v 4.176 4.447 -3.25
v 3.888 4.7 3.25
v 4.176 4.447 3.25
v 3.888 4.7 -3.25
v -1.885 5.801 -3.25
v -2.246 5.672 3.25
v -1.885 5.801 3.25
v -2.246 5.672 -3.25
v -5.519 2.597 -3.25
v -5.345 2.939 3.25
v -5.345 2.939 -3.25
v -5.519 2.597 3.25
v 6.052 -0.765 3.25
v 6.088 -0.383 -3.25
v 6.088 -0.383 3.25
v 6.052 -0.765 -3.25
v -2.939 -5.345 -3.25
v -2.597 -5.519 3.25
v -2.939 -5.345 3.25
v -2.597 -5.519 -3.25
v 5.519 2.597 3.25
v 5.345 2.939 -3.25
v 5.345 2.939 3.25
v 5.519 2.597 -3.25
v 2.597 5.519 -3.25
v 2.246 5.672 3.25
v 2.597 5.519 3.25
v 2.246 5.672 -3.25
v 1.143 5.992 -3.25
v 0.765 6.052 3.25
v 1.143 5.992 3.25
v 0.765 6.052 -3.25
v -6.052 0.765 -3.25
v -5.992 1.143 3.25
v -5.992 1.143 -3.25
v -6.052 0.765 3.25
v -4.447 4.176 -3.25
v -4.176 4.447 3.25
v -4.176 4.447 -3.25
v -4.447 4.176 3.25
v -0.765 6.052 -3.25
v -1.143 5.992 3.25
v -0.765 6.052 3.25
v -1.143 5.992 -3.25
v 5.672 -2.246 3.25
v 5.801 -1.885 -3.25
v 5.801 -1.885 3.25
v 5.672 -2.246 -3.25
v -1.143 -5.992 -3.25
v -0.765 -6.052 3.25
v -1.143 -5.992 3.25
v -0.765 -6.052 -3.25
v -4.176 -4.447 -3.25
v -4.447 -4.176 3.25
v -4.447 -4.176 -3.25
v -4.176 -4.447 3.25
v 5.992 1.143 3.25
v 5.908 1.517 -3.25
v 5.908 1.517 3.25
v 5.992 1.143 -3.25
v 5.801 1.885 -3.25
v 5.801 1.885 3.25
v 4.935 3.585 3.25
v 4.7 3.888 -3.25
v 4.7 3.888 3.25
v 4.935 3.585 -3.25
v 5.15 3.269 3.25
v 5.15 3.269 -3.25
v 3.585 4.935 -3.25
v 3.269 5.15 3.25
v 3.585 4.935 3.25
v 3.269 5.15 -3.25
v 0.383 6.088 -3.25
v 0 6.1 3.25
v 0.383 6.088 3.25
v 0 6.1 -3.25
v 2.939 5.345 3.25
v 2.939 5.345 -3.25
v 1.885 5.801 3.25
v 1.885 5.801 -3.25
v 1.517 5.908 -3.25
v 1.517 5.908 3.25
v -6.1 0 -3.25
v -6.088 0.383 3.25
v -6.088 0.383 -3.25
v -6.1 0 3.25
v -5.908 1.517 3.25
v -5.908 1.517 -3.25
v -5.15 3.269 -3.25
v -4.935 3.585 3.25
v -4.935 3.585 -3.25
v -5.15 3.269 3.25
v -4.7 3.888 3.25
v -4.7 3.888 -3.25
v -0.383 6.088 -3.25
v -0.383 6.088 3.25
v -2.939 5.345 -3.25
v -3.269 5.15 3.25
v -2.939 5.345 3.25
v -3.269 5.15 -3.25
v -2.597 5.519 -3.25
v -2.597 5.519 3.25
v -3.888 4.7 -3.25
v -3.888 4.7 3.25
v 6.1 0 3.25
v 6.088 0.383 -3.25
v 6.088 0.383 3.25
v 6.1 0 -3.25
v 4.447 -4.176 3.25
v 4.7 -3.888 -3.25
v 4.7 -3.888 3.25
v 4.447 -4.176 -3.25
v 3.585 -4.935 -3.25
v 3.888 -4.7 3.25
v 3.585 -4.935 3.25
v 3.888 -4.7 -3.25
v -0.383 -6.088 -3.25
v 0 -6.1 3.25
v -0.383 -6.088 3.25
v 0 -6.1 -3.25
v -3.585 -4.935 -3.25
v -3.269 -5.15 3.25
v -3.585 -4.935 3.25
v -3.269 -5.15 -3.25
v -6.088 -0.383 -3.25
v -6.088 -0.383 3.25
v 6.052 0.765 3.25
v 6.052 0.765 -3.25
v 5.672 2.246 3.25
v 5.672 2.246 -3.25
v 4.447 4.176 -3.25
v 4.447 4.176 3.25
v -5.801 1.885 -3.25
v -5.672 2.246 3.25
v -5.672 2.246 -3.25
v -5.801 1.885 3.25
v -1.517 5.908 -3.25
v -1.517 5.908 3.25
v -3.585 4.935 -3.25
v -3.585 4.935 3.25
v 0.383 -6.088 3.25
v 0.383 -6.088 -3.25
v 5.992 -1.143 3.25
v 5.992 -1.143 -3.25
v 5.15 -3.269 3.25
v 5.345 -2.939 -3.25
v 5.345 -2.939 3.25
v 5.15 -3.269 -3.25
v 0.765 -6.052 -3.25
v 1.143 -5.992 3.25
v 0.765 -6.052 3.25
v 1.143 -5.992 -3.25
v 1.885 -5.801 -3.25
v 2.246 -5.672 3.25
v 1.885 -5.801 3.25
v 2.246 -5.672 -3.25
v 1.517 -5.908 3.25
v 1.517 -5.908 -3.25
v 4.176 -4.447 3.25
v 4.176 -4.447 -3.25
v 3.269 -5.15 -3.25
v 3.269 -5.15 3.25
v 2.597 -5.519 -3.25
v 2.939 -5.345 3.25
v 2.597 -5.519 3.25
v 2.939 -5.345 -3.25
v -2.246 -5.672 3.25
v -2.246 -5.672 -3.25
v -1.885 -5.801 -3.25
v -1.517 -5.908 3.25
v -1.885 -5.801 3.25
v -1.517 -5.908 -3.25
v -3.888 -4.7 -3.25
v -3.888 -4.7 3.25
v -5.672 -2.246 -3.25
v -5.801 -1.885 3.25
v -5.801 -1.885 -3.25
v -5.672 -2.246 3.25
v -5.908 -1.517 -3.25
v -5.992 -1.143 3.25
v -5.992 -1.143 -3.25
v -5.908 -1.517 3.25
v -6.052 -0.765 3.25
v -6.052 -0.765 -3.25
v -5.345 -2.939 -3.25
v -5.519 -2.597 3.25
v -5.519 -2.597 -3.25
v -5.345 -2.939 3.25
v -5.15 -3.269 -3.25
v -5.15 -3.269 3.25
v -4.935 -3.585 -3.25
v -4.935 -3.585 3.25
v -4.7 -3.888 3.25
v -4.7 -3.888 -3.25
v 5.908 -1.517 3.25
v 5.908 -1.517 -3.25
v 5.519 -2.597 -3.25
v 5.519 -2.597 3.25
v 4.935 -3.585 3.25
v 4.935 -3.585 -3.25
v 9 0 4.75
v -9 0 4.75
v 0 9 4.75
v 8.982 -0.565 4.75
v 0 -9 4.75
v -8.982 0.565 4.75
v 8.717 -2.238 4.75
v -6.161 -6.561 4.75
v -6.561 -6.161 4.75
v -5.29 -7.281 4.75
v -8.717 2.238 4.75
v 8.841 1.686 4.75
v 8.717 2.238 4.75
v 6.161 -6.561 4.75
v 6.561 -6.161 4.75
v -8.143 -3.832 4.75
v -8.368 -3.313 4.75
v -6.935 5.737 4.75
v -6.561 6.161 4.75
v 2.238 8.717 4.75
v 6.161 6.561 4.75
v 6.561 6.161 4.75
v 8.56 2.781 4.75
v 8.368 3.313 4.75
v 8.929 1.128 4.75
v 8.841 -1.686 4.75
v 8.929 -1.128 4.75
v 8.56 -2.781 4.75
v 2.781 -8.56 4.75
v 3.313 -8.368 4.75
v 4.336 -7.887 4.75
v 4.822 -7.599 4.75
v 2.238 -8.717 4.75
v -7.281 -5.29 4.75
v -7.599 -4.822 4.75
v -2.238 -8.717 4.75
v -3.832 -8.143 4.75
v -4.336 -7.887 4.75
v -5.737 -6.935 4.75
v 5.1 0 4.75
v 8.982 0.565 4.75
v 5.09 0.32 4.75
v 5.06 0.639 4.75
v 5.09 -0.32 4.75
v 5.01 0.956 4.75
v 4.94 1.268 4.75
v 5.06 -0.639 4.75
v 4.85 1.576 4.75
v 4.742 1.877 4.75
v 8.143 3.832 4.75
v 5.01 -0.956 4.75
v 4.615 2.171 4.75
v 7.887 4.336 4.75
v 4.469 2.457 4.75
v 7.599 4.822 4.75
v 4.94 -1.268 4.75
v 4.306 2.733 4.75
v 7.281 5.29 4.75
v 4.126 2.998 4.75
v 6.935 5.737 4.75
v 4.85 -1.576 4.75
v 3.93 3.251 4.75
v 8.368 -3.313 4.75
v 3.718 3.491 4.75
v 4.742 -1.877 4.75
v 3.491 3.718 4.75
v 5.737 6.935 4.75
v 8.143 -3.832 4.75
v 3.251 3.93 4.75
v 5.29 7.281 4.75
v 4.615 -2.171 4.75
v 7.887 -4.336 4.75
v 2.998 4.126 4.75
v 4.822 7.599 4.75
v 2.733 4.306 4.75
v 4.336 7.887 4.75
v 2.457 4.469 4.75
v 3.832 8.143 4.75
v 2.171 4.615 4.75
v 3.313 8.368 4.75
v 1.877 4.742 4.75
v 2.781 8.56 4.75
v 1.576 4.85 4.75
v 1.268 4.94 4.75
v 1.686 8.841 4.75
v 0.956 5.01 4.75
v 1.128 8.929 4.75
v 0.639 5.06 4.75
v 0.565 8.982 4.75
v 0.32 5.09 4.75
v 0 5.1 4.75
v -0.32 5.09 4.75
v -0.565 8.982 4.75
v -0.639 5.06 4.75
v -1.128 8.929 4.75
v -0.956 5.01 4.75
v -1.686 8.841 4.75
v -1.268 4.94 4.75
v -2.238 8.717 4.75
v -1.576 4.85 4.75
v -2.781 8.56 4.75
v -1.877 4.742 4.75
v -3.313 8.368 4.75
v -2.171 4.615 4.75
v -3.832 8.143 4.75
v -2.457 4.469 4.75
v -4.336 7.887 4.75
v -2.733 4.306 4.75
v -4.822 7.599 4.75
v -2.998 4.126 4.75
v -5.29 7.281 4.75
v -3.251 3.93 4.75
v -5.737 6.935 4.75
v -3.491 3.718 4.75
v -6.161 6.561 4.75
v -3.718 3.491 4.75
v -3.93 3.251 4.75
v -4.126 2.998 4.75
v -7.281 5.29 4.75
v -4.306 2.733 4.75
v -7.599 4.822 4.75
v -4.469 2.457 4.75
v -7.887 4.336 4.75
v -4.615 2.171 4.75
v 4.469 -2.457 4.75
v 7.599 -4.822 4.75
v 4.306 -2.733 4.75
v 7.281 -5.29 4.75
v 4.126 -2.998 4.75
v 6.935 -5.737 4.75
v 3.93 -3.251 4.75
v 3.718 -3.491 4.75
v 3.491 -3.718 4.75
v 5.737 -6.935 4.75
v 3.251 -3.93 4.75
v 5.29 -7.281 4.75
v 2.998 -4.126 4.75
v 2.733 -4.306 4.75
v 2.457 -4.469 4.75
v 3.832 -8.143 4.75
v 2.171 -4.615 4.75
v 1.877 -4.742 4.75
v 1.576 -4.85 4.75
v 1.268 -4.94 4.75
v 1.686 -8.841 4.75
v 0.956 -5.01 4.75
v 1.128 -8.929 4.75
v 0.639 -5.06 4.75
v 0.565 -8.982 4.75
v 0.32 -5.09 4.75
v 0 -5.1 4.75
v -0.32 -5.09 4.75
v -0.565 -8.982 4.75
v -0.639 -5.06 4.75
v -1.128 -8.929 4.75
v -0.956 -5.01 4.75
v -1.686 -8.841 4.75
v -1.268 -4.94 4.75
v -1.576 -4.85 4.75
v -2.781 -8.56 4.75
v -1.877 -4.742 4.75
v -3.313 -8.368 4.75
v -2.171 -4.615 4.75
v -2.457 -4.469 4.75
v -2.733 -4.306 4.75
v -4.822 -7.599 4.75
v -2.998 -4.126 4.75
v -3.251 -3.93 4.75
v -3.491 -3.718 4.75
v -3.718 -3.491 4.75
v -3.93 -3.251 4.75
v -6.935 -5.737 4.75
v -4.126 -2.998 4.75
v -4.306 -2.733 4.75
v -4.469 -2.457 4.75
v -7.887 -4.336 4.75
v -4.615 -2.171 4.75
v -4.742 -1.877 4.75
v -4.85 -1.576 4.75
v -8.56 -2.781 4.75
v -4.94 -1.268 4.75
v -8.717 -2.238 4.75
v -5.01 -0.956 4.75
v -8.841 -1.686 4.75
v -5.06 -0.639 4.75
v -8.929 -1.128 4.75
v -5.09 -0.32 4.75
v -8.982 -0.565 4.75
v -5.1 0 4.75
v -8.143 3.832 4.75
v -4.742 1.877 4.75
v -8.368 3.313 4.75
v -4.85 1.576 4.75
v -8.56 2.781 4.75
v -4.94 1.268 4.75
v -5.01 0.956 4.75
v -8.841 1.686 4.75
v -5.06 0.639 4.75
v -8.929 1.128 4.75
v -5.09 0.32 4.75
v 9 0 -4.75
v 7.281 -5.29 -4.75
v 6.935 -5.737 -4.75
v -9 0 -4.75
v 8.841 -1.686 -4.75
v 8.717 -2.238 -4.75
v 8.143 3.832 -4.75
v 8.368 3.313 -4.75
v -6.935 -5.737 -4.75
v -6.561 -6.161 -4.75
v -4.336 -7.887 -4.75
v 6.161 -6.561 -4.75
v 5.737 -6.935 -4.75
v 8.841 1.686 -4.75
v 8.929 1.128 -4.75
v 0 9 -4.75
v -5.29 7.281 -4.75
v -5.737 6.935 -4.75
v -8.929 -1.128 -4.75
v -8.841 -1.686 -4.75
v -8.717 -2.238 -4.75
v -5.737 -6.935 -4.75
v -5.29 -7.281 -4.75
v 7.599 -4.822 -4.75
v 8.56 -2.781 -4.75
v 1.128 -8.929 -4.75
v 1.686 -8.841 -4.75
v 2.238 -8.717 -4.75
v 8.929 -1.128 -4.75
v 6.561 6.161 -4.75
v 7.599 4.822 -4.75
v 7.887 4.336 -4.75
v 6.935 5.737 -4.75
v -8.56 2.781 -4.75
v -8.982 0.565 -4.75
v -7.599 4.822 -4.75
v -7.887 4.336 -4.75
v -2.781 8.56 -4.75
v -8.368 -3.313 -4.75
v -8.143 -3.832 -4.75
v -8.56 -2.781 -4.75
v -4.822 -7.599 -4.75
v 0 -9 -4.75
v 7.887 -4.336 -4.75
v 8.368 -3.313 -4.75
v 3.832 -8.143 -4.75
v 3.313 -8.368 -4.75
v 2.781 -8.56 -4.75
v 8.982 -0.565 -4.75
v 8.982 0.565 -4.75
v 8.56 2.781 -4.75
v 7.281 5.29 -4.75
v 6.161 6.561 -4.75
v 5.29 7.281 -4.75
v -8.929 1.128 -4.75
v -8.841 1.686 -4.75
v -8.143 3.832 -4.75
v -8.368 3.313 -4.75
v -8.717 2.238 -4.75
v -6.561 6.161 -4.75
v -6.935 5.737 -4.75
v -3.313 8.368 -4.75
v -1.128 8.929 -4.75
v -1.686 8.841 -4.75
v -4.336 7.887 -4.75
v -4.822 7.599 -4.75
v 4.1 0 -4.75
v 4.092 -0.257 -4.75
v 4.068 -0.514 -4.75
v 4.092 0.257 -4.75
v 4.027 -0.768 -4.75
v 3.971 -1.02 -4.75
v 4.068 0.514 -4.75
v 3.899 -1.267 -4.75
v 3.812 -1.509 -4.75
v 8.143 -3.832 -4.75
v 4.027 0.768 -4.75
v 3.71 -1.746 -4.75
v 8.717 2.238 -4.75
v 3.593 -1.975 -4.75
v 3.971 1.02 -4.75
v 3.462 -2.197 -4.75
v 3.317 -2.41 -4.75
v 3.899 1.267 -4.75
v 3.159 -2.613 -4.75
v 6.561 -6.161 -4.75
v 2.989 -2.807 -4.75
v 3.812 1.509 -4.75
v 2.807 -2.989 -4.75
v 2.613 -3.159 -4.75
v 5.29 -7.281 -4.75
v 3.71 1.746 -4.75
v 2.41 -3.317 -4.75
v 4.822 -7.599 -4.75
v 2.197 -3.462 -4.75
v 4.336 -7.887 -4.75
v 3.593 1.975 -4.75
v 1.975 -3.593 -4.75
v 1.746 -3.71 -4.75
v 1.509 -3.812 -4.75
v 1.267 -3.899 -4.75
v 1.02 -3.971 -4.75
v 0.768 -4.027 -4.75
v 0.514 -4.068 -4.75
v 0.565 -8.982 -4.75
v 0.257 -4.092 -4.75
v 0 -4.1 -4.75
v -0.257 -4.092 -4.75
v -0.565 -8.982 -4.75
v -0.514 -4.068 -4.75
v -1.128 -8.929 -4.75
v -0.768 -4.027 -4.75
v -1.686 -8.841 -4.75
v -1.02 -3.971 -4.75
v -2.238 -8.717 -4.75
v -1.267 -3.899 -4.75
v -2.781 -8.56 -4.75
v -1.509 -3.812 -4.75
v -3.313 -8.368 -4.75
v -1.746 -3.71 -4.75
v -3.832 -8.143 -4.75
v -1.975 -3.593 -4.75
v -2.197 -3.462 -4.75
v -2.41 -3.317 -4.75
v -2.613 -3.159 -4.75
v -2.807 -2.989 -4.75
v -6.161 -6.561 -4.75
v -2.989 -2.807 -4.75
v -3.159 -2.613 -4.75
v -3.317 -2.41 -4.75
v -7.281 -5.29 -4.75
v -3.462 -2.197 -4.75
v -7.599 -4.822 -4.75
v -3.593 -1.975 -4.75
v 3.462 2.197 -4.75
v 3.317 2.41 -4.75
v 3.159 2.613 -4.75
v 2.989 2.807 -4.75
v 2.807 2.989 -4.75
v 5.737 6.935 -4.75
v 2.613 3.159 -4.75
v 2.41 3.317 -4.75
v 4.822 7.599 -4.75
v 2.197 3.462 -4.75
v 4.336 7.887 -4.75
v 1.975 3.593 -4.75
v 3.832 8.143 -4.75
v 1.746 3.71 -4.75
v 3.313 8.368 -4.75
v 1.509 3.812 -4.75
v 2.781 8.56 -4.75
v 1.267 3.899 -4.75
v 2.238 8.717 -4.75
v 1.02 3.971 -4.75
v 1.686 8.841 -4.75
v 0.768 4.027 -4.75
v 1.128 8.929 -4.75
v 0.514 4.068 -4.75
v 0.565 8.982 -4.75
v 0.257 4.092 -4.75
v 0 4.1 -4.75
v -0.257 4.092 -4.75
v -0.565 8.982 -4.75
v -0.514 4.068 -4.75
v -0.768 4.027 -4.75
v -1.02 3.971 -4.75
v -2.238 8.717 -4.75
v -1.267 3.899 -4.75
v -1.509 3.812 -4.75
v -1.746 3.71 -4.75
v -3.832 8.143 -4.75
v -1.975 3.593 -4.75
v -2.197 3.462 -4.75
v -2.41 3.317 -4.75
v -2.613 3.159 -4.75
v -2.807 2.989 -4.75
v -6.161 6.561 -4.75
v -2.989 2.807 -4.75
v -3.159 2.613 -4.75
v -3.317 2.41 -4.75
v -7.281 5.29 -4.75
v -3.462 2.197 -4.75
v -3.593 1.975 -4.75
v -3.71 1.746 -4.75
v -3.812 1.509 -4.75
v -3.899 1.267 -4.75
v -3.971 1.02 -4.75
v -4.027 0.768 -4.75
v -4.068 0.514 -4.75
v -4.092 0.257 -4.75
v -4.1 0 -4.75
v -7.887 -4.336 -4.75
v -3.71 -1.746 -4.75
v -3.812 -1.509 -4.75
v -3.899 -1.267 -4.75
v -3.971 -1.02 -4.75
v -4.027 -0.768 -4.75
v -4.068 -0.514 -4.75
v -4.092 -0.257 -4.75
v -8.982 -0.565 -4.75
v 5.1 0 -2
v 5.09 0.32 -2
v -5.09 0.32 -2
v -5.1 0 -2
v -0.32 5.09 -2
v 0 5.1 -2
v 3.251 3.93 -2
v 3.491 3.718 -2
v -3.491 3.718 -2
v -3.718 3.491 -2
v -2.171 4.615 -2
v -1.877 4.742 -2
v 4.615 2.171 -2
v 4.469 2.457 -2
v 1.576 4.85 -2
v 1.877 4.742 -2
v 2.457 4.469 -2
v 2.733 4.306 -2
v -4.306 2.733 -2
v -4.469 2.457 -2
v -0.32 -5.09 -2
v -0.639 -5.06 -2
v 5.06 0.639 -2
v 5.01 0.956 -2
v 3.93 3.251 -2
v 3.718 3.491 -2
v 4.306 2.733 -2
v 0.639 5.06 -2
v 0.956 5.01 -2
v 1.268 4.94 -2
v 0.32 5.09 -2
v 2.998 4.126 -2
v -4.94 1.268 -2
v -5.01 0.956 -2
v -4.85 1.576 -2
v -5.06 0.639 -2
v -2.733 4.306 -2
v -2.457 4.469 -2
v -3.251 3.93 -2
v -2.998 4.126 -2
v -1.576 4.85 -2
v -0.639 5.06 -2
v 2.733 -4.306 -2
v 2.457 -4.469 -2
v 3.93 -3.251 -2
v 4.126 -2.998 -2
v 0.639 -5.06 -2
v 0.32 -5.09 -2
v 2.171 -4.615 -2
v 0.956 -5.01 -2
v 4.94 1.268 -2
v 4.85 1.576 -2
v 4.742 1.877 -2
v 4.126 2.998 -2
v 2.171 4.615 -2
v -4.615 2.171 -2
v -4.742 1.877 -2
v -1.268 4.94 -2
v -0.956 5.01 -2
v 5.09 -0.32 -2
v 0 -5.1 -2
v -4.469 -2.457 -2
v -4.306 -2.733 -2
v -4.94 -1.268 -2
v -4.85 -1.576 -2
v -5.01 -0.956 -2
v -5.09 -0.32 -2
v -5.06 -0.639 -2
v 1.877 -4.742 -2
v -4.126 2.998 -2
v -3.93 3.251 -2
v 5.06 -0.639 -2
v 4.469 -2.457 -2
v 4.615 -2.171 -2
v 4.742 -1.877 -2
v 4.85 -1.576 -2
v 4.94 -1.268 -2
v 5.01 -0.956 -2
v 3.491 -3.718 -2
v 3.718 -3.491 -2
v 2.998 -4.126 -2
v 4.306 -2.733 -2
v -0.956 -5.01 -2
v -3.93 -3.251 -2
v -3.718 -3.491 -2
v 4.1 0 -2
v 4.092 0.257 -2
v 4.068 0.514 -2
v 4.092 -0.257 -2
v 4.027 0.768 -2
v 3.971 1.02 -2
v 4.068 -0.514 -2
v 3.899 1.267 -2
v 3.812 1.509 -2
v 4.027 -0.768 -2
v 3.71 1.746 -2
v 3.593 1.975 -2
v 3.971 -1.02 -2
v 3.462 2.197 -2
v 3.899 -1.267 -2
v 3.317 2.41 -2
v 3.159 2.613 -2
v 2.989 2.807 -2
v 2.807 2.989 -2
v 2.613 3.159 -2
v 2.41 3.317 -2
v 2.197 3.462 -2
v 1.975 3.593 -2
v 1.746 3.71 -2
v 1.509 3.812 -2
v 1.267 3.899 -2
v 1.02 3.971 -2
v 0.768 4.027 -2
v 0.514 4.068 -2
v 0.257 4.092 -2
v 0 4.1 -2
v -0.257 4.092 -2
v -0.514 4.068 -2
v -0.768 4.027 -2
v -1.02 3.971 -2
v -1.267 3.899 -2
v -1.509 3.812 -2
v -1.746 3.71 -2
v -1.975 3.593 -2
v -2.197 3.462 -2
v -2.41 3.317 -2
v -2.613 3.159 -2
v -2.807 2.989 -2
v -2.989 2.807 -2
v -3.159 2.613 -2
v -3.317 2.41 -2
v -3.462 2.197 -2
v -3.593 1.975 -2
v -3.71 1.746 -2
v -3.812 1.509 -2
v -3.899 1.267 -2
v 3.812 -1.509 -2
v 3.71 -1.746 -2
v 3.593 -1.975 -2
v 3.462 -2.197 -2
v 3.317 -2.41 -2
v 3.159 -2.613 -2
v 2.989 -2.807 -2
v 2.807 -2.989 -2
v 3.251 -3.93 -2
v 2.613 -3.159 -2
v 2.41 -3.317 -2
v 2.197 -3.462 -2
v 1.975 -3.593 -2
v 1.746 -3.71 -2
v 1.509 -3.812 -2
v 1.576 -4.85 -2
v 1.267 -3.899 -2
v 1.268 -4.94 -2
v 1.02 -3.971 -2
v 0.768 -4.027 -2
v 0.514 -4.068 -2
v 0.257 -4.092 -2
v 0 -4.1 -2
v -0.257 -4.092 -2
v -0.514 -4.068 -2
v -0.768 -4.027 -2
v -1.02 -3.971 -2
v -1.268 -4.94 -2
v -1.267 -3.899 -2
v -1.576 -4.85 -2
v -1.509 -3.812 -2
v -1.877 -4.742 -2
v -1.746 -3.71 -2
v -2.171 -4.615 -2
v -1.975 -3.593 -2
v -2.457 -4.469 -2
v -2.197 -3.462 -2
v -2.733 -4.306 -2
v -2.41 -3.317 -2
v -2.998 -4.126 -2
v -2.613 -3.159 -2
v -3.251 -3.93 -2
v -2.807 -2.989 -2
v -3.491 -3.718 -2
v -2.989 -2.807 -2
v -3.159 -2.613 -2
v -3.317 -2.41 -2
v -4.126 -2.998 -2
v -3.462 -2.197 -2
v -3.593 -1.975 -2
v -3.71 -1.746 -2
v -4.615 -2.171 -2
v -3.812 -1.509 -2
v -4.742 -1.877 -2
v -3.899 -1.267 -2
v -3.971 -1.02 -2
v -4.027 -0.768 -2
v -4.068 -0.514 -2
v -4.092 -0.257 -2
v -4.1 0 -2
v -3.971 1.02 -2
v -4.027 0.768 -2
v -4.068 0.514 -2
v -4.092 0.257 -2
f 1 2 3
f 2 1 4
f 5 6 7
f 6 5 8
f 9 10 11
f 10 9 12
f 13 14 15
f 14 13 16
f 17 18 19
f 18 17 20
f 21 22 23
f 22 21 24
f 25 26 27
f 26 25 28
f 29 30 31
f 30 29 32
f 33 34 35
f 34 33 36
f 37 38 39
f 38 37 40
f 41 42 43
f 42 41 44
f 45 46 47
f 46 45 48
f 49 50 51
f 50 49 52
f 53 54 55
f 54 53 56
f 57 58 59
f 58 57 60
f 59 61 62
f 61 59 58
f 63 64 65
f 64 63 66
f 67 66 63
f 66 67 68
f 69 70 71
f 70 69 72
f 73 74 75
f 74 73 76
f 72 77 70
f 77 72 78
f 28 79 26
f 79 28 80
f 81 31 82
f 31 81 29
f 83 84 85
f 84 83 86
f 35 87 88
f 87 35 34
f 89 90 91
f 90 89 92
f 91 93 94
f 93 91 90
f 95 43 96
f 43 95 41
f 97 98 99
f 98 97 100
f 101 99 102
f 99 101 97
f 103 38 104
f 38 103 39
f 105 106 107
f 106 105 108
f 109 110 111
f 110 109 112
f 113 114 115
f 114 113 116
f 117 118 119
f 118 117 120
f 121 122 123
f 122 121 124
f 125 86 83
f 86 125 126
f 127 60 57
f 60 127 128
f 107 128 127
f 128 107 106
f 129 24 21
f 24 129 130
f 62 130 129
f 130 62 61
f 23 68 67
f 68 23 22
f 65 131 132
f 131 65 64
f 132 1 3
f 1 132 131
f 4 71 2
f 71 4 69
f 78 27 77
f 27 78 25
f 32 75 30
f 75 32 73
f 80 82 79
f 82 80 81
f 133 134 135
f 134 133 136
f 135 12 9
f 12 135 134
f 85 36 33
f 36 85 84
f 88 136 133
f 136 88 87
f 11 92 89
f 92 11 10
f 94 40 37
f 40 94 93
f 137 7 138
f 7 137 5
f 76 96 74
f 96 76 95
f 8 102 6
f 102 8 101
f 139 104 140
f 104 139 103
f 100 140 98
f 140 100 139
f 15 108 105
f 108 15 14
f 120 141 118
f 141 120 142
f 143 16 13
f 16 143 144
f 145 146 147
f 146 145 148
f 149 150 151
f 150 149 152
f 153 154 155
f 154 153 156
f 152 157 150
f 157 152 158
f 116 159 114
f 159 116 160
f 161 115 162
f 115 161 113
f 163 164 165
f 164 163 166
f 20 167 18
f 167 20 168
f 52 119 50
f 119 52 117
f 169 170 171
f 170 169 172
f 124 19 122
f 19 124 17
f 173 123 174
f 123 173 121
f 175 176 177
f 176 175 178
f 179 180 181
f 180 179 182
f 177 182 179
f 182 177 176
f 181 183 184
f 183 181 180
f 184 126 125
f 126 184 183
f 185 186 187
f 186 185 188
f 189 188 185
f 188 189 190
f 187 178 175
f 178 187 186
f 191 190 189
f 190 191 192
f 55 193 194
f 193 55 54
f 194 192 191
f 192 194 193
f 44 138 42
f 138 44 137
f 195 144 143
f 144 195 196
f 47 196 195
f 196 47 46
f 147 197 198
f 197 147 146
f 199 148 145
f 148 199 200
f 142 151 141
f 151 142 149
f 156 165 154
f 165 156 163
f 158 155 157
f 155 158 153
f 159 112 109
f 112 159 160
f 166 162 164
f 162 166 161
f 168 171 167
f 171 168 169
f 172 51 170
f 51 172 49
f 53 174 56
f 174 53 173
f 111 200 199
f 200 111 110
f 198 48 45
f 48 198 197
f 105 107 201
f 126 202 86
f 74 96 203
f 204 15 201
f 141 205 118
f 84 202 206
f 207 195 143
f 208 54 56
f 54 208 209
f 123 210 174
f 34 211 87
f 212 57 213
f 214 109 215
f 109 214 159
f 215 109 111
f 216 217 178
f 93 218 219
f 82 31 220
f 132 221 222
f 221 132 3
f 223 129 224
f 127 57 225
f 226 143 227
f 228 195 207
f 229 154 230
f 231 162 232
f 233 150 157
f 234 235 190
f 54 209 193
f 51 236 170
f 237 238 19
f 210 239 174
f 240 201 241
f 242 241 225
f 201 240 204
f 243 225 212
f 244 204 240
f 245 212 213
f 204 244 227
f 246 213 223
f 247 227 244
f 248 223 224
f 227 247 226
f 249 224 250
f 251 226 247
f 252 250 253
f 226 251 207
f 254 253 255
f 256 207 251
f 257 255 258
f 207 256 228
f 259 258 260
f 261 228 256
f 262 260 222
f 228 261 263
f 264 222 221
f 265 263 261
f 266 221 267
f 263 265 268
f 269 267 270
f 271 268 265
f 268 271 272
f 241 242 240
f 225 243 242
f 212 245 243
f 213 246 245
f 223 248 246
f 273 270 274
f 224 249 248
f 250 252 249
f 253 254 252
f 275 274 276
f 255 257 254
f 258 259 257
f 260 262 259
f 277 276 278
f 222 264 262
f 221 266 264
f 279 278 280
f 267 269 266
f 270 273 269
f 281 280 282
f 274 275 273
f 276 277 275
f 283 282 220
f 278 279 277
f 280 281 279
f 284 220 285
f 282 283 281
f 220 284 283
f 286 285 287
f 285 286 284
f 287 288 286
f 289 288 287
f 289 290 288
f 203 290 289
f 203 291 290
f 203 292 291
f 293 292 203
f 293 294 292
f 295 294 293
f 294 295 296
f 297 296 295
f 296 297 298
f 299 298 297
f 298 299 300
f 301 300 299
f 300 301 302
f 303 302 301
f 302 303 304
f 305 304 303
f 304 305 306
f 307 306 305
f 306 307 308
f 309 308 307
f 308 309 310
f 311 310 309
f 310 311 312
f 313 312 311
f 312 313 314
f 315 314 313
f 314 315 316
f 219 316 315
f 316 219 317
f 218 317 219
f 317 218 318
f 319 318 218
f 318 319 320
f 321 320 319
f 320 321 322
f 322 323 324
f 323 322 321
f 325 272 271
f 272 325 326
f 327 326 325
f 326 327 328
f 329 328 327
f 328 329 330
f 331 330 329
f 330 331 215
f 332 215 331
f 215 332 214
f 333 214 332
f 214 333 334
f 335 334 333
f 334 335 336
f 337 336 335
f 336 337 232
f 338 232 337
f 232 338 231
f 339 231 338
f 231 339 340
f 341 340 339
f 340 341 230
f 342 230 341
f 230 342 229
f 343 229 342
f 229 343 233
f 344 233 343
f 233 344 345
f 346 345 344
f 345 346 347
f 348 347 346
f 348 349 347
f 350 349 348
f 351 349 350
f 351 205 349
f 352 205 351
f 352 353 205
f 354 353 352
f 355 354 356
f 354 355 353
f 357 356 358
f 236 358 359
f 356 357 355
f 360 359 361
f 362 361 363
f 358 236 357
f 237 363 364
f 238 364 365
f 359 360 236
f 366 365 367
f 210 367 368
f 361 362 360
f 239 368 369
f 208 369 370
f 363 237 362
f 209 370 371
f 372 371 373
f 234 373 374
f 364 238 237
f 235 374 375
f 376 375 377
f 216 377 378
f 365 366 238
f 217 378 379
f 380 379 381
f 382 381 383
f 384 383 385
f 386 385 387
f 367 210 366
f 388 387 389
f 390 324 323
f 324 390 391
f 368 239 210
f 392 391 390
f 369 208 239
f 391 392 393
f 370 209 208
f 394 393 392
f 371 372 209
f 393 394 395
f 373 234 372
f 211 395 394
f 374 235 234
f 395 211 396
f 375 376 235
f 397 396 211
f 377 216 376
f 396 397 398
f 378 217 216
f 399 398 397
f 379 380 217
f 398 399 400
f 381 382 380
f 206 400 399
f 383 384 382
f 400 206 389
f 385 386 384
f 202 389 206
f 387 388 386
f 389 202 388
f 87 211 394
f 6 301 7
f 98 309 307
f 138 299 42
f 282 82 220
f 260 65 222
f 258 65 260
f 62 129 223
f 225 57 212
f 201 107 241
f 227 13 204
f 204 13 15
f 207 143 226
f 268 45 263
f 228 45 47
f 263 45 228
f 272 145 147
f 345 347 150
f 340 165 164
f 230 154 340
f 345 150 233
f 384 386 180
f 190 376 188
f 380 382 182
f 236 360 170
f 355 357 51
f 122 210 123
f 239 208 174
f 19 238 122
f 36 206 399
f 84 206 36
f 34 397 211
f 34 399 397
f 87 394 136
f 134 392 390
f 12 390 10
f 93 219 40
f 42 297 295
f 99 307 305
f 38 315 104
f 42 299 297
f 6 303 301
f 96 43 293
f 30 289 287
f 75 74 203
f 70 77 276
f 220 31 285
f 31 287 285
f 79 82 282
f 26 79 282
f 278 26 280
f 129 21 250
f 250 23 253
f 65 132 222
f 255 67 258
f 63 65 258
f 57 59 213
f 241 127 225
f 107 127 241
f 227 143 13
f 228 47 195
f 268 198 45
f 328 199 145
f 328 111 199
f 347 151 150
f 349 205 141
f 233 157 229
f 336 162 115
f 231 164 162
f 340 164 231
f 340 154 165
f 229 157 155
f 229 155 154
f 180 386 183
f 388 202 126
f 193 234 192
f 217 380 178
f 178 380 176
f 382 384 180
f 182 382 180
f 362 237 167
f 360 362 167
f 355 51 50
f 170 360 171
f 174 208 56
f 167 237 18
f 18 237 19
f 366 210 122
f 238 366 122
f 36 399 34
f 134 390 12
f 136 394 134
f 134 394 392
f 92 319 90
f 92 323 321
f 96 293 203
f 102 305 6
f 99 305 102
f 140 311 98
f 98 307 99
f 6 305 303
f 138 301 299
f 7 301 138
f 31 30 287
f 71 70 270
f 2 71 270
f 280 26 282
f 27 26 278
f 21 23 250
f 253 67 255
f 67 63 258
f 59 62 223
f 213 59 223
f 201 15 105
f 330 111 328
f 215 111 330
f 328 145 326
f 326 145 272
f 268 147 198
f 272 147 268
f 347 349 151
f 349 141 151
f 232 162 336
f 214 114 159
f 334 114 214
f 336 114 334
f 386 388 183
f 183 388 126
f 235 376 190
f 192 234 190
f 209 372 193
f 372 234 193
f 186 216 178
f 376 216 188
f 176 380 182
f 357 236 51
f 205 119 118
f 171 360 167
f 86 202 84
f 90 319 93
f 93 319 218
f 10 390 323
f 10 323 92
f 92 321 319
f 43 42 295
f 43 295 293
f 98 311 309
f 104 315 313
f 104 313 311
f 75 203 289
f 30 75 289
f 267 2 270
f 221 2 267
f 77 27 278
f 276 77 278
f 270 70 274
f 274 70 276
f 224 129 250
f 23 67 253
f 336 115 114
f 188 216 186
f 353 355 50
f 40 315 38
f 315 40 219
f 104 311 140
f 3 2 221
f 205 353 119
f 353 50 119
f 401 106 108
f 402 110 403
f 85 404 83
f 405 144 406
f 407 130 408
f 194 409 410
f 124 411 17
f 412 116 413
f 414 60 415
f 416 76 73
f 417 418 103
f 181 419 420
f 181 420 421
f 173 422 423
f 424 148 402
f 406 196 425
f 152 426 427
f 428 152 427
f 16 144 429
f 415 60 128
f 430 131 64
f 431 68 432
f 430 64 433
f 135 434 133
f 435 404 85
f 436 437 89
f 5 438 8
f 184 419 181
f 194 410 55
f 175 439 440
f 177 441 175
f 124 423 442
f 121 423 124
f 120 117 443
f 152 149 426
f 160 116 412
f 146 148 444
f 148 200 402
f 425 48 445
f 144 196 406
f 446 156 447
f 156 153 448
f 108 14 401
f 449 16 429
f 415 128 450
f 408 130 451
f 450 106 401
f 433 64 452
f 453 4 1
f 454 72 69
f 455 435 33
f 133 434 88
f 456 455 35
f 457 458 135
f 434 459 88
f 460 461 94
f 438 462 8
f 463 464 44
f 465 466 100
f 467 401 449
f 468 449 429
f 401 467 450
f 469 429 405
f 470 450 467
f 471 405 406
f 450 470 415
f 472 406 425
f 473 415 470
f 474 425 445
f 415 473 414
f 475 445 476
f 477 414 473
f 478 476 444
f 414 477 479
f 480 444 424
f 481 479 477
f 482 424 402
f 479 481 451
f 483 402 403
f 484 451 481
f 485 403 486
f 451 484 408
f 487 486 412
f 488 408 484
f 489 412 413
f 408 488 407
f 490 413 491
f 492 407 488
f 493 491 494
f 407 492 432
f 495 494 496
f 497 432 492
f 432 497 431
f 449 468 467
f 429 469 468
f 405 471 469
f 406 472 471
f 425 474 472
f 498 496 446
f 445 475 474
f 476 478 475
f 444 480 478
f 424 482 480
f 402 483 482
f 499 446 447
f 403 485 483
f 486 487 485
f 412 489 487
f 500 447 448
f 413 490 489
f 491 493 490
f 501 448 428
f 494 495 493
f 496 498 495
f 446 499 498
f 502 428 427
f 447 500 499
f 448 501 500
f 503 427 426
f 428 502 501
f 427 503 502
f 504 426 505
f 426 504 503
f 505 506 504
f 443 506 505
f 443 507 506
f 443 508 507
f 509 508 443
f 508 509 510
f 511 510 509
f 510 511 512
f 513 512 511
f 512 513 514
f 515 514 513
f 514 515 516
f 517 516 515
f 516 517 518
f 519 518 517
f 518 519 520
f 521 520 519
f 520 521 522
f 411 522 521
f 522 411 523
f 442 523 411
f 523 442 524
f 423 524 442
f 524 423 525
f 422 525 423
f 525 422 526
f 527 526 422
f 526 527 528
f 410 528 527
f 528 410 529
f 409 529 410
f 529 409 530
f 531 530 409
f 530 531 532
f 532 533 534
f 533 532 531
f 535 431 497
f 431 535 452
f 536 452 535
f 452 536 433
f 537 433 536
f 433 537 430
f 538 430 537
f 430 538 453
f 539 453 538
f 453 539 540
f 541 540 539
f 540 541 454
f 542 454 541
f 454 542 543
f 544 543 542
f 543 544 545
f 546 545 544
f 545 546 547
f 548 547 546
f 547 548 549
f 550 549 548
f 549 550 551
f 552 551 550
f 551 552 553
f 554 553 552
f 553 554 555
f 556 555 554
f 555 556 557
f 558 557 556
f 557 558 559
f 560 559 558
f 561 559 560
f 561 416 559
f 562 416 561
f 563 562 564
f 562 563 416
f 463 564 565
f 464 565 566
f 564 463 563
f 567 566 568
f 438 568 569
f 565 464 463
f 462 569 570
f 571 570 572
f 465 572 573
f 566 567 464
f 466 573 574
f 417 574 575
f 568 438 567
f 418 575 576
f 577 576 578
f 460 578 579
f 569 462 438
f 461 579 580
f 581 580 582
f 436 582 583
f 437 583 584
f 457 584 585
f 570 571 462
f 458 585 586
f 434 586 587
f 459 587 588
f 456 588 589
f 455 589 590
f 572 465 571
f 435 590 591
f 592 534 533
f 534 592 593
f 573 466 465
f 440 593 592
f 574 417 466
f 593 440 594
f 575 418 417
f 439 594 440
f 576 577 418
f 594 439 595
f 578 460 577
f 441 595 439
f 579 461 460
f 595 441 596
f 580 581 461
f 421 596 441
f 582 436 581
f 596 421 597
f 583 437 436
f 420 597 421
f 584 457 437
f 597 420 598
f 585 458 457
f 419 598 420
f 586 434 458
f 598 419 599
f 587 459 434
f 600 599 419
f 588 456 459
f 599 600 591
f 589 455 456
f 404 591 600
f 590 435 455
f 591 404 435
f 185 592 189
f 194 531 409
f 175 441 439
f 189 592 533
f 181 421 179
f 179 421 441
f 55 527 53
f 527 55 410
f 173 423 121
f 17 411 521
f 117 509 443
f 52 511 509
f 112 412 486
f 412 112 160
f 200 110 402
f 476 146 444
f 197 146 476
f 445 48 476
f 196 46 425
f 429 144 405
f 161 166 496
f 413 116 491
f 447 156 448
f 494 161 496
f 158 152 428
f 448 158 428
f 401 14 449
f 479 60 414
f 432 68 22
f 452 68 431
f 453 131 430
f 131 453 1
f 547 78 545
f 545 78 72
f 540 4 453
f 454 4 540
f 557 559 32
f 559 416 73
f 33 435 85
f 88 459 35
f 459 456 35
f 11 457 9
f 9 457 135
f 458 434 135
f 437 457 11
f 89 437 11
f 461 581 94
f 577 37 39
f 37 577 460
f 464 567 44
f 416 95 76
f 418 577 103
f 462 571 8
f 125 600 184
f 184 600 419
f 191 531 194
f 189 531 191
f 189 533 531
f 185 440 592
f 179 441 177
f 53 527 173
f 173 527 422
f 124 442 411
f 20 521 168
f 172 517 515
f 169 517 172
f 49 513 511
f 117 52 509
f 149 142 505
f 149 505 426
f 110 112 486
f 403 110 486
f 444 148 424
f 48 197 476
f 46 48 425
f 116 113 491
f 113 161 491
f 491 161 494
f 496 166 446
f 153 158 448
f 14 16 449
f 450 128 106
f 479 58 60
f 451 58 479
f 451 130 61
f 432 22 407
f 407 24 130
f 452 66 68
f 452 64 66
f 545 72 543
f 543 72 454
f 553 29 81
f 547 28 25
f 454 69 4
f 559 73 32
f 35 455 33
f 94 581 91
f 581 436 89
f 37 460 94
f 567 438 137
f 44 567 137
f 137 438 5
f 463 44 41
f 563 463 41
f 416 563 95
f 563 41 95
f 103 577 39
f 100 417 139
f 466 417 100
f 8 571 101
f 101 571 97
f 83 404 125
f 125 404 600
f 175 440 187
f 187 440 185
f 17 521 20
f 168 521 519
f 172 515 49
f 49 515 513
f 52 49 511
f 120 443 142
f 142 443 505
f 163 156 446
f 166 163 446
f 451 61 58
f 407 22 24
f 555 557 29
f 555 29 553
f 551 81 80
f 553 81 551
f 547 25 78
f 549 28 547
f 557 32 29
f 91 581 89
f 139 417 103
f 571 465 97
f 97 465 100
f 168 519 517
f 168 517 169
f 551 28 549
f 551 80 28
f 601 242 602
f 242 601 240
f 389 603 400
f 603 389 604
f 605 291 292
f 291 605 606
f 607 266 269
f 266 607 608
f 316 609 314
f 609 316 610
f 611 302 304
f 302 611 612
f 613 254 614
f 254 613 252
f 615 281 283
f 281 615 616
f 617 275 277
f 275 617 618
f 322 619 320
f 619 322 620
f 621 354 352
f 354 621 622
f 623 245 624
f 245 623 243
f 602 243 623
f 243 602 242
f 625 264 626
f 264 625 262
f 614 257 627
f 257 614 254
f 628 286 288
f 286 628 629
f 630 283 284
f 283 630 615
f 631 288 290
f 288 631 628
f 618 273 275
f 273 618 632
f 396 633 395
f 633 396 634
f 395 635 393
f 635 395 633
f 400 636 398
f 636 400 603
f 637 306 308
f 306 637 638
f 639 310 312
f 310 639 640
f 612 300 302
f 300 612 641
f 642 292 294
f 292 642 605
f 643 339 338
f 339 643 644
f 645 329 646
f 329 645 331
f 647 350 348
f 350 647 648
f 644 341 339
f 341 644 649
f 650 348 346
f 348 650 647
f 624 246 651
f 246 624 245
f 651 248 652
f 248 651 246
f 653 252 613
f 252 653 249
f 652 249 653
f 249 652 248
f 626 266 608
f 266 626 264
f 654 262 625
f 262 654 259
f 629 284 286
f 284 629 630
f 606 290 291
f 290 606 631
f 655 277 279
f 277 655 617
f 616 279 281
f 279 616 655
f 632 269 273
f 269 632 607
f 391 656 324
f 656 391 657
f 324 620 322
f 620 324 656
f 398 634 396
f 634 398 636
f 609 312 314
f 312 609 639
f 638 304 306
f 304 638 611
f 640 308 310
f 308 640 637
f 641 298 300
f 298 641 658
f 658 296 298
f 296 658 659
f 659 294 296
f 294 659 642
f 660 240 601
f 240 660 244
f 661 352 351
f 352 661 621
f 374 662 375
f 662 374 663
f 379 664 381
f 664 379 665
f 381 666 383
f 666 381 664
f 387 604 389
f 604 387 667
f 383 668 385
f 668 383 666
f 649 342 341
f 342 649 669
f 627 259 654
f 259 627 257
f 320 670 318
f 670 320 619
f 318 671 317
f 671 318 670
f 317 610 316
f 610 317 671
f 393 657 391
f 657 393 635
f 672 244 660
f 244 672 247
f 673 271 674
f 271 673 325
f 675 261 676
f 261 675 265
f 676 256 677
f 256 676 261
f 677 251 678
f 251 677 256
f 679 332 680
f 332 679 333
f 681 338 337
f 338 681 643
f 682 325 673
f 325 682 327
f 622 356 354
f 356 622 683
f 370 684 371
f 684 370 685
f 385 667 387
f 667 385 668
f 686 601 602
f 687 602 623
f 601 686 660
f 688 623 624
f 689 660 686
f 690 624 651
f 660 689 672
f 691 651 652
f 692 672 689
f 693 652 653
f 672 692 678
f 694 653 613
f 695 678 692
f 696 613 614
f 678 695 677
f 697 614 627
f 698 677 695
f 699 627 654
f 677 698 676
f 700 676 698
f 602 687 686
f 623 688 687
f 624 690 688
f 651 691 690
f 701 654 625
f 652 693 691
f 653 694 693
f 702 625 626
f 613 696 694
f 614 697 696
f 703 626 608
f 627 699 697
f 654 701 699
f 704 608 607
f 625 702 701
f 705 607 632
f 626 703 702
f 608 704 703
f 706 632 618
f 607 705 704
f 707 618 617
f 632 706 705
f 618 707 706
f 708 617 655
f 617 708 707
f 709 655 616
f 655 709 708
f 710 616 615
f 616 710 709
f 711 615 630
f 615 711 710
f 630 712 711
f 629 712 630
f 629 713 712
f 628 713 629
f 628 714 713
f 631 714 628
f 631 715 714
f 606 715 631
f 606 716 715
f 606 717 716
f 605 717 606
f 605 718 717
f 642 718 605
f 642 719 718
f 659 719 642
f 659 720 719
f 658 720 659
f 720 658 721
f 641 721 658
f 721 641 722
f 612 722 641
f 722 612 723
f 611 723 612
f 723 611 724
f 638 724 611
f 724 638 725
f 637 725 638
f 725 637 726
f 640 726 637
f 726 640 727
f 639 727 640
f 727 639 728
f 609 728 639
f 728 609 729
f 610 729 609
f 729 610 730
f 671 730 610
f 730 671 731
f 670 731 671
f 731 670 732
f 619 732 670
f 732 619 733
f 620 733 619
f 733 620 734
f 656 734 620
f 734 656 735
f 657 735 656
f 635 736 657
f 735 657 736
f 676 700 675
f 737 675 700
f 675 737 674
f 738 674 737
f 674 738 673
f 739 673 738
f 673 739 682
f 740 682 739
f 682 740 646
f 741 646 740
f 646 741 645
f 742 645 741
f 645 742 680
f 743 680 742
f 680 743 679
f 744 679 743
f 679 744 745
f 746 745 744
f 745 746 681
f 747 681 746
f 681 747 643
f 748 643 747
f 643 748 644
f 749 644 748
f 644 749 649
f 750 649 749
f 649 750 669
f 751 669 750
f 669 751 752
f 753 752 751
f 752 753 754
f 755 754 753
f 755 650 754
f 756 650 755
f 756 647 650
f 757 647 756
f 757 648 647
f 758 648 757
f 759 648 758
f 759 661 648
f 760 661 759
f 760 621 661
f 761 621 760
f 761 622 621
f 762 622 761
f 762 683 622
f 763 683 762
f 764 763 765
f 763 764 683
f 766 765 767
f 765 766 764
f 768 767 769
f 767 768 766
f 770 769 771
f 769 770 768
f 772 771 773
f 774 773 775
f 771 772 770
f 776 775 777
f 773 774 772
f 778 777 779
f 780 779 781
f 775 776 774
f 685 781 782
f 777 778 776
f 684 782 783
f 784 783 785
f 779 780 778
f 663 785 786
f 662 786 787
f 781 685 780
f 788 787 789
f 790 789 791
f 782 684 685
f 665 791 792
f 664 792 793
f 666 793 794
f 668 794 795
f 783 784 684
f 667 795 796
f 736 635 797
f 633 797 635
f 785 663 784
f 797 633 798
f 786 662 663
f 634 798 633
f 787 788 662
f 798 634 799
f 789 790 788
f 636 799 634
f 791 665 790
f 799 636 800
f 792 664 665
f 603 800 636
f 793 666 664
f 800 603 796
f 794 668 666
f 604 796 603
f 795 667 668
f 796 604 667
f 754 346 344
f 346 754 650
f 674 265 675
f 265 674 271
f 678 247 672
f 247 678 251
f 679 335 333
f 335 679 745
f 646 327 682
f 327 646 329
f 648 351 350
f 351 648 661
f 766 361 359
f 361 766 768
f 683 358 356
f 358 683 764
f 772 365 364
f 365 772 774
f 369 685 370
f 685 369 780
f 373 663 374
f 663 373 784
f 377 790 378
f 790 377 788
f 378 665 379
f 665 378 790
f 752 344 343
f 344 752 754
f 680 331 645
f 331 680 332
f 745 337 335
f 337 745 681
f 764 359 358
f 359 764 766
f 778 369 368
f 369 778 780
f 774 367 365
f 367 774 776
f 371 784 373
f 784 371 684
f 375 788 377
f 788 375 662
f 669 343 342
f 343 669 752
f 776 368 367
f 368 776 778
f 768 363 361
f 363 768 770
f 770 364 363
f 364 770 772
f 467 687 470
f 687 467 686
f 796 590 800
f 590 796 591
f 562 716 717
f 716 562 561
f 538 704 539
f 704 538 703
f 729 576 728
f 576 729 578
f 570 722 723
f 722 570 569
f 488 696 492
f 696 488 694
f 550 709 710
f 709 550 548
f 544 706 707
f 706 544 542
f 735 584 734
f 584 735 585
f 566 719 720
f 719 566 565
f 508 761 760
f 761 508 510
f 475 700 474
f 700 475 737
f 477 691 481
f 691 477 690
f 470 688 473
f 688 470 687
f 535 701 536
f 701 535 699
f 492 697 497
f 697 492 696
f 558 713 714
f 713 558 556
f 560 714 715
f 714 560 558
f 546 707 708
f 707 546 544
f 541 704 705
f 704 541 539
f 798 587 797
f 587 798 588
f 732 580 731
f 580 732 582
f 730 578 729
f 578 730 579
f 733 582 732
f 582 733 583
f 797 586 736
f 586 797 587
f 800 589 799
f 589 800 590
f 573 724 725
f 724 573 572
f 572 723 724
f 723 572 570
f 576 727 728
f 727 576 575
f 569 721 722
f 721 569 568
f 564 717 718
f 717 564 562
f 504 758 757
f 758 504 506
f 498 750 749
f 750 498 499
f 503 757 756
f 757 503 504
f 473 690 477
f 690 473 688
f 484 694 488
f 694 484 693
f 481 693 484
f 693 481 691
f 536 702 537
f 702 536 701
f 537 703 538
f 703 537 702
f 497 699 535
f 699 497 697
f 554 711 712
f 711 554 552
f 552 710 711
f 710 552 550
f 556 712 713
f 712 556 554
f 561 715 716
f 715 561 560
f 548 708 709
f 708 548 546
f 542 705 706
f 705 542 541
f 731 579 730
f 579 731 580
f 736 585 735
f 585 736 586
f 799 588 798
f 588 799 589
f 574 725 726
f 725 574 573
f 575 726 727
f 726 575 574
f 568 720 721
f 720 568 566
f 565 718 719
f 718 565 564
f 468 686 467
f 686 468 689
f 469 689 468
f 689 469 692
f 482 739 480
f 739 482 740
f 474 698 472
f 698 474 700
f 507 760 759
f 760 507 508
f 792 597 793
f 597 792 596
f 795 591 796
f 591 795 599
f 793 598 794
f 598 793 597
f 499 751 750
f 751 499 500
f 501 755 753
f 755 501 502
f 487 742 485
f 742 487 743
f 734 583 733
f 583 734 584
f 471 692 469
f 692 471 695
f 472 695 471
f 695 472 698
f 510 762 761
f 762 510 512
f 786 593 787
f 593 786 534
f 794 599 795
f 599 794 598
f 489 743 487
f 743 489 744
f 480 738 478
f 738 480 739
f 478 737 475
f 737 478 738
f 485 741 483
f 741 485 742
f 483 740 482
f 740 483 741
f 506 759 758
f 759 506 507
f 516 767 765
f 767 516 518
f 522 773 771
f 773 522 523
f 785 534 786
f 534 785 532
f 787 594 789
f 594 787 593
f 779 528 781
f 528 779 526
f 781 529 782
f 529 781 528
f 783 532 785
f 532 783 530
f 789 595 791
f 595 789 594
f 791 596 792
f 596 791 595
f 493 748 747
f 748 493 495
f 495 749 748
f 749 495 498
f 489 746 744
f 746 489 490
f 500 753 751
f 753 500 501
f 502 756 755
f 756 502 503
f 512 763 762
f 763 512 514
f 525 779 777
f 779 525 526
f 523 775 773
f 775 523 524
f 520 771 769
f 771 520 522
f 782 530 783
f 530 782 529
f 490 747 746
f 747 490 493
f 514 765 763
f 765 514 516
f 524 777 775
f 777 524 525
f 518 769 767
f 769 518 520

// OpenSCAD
$fn=100;

bearing_outer_diameter = 10.2;
bearing_height = 4;

belt_pulley_inner_diameter_thickness = 1;
belt_pulley_inner_diameter = bearing_outer_diameter + (belt_pulley_inner_diameter_thickness * 2);
belt_pulley_outer_diameter = 18;
belt_pulley_inner_height   = 6.5;
belt_pulley_outer_height   = 9.5;


belt_pulley_border_height  = (belt_pulley_outer_height - belt_pulley_inner_height) / 2;


module belt_pulley_border() {
    color([1, 1, 0, 0.7])
    translate([0, 0, (belt_pulley_outer_height / 2) - (belt_pulley_border_height / 2)])
    cylinder (r1=(belt_pulley_inner_diameter / 2), r2=(belt_pulley_outer_diameter / 2), h=belt_pulley_border_height , center=true);
}



module base_piece() {
    union() {
        color([1, 1, 0, 0.7])
        cylinder (r=(belt_pulley_inner_diameter / 2), h=belt_pulley_outer_height - (belt_pulley_border_height * 2) , center=true);
        belt_pulley_border();
        mirror([0, 0, 1])
        belt_pulley_border();
    }
}

module base_piece_remove() {
    union() {
        // part to remove to be able to insert the bearing
        translate([0, 0, bearing_height / 2])
    color([1, 0, 0, 0.7])
        cylinder (r=(bearing_outer_diameter / 2), h=(bearing_height*2) , center=true);
        
        // part remaining to remove
    color([1, 0, 0, 0.7])
        cylinder (r=(bearing_outer_diameter / 2) - 1, h=belt_pulley_outer_height+ 1, center=true);
    }
}


module _render() {
    difference() {
        base_piece();
        base_piece_remove();
    }
}

    // the bearing
//color([1, 0, 1, 0.7])
//cylinder (r=(bearing_outer_diameter / 2), h=bearing_height, center=true);

_render();
